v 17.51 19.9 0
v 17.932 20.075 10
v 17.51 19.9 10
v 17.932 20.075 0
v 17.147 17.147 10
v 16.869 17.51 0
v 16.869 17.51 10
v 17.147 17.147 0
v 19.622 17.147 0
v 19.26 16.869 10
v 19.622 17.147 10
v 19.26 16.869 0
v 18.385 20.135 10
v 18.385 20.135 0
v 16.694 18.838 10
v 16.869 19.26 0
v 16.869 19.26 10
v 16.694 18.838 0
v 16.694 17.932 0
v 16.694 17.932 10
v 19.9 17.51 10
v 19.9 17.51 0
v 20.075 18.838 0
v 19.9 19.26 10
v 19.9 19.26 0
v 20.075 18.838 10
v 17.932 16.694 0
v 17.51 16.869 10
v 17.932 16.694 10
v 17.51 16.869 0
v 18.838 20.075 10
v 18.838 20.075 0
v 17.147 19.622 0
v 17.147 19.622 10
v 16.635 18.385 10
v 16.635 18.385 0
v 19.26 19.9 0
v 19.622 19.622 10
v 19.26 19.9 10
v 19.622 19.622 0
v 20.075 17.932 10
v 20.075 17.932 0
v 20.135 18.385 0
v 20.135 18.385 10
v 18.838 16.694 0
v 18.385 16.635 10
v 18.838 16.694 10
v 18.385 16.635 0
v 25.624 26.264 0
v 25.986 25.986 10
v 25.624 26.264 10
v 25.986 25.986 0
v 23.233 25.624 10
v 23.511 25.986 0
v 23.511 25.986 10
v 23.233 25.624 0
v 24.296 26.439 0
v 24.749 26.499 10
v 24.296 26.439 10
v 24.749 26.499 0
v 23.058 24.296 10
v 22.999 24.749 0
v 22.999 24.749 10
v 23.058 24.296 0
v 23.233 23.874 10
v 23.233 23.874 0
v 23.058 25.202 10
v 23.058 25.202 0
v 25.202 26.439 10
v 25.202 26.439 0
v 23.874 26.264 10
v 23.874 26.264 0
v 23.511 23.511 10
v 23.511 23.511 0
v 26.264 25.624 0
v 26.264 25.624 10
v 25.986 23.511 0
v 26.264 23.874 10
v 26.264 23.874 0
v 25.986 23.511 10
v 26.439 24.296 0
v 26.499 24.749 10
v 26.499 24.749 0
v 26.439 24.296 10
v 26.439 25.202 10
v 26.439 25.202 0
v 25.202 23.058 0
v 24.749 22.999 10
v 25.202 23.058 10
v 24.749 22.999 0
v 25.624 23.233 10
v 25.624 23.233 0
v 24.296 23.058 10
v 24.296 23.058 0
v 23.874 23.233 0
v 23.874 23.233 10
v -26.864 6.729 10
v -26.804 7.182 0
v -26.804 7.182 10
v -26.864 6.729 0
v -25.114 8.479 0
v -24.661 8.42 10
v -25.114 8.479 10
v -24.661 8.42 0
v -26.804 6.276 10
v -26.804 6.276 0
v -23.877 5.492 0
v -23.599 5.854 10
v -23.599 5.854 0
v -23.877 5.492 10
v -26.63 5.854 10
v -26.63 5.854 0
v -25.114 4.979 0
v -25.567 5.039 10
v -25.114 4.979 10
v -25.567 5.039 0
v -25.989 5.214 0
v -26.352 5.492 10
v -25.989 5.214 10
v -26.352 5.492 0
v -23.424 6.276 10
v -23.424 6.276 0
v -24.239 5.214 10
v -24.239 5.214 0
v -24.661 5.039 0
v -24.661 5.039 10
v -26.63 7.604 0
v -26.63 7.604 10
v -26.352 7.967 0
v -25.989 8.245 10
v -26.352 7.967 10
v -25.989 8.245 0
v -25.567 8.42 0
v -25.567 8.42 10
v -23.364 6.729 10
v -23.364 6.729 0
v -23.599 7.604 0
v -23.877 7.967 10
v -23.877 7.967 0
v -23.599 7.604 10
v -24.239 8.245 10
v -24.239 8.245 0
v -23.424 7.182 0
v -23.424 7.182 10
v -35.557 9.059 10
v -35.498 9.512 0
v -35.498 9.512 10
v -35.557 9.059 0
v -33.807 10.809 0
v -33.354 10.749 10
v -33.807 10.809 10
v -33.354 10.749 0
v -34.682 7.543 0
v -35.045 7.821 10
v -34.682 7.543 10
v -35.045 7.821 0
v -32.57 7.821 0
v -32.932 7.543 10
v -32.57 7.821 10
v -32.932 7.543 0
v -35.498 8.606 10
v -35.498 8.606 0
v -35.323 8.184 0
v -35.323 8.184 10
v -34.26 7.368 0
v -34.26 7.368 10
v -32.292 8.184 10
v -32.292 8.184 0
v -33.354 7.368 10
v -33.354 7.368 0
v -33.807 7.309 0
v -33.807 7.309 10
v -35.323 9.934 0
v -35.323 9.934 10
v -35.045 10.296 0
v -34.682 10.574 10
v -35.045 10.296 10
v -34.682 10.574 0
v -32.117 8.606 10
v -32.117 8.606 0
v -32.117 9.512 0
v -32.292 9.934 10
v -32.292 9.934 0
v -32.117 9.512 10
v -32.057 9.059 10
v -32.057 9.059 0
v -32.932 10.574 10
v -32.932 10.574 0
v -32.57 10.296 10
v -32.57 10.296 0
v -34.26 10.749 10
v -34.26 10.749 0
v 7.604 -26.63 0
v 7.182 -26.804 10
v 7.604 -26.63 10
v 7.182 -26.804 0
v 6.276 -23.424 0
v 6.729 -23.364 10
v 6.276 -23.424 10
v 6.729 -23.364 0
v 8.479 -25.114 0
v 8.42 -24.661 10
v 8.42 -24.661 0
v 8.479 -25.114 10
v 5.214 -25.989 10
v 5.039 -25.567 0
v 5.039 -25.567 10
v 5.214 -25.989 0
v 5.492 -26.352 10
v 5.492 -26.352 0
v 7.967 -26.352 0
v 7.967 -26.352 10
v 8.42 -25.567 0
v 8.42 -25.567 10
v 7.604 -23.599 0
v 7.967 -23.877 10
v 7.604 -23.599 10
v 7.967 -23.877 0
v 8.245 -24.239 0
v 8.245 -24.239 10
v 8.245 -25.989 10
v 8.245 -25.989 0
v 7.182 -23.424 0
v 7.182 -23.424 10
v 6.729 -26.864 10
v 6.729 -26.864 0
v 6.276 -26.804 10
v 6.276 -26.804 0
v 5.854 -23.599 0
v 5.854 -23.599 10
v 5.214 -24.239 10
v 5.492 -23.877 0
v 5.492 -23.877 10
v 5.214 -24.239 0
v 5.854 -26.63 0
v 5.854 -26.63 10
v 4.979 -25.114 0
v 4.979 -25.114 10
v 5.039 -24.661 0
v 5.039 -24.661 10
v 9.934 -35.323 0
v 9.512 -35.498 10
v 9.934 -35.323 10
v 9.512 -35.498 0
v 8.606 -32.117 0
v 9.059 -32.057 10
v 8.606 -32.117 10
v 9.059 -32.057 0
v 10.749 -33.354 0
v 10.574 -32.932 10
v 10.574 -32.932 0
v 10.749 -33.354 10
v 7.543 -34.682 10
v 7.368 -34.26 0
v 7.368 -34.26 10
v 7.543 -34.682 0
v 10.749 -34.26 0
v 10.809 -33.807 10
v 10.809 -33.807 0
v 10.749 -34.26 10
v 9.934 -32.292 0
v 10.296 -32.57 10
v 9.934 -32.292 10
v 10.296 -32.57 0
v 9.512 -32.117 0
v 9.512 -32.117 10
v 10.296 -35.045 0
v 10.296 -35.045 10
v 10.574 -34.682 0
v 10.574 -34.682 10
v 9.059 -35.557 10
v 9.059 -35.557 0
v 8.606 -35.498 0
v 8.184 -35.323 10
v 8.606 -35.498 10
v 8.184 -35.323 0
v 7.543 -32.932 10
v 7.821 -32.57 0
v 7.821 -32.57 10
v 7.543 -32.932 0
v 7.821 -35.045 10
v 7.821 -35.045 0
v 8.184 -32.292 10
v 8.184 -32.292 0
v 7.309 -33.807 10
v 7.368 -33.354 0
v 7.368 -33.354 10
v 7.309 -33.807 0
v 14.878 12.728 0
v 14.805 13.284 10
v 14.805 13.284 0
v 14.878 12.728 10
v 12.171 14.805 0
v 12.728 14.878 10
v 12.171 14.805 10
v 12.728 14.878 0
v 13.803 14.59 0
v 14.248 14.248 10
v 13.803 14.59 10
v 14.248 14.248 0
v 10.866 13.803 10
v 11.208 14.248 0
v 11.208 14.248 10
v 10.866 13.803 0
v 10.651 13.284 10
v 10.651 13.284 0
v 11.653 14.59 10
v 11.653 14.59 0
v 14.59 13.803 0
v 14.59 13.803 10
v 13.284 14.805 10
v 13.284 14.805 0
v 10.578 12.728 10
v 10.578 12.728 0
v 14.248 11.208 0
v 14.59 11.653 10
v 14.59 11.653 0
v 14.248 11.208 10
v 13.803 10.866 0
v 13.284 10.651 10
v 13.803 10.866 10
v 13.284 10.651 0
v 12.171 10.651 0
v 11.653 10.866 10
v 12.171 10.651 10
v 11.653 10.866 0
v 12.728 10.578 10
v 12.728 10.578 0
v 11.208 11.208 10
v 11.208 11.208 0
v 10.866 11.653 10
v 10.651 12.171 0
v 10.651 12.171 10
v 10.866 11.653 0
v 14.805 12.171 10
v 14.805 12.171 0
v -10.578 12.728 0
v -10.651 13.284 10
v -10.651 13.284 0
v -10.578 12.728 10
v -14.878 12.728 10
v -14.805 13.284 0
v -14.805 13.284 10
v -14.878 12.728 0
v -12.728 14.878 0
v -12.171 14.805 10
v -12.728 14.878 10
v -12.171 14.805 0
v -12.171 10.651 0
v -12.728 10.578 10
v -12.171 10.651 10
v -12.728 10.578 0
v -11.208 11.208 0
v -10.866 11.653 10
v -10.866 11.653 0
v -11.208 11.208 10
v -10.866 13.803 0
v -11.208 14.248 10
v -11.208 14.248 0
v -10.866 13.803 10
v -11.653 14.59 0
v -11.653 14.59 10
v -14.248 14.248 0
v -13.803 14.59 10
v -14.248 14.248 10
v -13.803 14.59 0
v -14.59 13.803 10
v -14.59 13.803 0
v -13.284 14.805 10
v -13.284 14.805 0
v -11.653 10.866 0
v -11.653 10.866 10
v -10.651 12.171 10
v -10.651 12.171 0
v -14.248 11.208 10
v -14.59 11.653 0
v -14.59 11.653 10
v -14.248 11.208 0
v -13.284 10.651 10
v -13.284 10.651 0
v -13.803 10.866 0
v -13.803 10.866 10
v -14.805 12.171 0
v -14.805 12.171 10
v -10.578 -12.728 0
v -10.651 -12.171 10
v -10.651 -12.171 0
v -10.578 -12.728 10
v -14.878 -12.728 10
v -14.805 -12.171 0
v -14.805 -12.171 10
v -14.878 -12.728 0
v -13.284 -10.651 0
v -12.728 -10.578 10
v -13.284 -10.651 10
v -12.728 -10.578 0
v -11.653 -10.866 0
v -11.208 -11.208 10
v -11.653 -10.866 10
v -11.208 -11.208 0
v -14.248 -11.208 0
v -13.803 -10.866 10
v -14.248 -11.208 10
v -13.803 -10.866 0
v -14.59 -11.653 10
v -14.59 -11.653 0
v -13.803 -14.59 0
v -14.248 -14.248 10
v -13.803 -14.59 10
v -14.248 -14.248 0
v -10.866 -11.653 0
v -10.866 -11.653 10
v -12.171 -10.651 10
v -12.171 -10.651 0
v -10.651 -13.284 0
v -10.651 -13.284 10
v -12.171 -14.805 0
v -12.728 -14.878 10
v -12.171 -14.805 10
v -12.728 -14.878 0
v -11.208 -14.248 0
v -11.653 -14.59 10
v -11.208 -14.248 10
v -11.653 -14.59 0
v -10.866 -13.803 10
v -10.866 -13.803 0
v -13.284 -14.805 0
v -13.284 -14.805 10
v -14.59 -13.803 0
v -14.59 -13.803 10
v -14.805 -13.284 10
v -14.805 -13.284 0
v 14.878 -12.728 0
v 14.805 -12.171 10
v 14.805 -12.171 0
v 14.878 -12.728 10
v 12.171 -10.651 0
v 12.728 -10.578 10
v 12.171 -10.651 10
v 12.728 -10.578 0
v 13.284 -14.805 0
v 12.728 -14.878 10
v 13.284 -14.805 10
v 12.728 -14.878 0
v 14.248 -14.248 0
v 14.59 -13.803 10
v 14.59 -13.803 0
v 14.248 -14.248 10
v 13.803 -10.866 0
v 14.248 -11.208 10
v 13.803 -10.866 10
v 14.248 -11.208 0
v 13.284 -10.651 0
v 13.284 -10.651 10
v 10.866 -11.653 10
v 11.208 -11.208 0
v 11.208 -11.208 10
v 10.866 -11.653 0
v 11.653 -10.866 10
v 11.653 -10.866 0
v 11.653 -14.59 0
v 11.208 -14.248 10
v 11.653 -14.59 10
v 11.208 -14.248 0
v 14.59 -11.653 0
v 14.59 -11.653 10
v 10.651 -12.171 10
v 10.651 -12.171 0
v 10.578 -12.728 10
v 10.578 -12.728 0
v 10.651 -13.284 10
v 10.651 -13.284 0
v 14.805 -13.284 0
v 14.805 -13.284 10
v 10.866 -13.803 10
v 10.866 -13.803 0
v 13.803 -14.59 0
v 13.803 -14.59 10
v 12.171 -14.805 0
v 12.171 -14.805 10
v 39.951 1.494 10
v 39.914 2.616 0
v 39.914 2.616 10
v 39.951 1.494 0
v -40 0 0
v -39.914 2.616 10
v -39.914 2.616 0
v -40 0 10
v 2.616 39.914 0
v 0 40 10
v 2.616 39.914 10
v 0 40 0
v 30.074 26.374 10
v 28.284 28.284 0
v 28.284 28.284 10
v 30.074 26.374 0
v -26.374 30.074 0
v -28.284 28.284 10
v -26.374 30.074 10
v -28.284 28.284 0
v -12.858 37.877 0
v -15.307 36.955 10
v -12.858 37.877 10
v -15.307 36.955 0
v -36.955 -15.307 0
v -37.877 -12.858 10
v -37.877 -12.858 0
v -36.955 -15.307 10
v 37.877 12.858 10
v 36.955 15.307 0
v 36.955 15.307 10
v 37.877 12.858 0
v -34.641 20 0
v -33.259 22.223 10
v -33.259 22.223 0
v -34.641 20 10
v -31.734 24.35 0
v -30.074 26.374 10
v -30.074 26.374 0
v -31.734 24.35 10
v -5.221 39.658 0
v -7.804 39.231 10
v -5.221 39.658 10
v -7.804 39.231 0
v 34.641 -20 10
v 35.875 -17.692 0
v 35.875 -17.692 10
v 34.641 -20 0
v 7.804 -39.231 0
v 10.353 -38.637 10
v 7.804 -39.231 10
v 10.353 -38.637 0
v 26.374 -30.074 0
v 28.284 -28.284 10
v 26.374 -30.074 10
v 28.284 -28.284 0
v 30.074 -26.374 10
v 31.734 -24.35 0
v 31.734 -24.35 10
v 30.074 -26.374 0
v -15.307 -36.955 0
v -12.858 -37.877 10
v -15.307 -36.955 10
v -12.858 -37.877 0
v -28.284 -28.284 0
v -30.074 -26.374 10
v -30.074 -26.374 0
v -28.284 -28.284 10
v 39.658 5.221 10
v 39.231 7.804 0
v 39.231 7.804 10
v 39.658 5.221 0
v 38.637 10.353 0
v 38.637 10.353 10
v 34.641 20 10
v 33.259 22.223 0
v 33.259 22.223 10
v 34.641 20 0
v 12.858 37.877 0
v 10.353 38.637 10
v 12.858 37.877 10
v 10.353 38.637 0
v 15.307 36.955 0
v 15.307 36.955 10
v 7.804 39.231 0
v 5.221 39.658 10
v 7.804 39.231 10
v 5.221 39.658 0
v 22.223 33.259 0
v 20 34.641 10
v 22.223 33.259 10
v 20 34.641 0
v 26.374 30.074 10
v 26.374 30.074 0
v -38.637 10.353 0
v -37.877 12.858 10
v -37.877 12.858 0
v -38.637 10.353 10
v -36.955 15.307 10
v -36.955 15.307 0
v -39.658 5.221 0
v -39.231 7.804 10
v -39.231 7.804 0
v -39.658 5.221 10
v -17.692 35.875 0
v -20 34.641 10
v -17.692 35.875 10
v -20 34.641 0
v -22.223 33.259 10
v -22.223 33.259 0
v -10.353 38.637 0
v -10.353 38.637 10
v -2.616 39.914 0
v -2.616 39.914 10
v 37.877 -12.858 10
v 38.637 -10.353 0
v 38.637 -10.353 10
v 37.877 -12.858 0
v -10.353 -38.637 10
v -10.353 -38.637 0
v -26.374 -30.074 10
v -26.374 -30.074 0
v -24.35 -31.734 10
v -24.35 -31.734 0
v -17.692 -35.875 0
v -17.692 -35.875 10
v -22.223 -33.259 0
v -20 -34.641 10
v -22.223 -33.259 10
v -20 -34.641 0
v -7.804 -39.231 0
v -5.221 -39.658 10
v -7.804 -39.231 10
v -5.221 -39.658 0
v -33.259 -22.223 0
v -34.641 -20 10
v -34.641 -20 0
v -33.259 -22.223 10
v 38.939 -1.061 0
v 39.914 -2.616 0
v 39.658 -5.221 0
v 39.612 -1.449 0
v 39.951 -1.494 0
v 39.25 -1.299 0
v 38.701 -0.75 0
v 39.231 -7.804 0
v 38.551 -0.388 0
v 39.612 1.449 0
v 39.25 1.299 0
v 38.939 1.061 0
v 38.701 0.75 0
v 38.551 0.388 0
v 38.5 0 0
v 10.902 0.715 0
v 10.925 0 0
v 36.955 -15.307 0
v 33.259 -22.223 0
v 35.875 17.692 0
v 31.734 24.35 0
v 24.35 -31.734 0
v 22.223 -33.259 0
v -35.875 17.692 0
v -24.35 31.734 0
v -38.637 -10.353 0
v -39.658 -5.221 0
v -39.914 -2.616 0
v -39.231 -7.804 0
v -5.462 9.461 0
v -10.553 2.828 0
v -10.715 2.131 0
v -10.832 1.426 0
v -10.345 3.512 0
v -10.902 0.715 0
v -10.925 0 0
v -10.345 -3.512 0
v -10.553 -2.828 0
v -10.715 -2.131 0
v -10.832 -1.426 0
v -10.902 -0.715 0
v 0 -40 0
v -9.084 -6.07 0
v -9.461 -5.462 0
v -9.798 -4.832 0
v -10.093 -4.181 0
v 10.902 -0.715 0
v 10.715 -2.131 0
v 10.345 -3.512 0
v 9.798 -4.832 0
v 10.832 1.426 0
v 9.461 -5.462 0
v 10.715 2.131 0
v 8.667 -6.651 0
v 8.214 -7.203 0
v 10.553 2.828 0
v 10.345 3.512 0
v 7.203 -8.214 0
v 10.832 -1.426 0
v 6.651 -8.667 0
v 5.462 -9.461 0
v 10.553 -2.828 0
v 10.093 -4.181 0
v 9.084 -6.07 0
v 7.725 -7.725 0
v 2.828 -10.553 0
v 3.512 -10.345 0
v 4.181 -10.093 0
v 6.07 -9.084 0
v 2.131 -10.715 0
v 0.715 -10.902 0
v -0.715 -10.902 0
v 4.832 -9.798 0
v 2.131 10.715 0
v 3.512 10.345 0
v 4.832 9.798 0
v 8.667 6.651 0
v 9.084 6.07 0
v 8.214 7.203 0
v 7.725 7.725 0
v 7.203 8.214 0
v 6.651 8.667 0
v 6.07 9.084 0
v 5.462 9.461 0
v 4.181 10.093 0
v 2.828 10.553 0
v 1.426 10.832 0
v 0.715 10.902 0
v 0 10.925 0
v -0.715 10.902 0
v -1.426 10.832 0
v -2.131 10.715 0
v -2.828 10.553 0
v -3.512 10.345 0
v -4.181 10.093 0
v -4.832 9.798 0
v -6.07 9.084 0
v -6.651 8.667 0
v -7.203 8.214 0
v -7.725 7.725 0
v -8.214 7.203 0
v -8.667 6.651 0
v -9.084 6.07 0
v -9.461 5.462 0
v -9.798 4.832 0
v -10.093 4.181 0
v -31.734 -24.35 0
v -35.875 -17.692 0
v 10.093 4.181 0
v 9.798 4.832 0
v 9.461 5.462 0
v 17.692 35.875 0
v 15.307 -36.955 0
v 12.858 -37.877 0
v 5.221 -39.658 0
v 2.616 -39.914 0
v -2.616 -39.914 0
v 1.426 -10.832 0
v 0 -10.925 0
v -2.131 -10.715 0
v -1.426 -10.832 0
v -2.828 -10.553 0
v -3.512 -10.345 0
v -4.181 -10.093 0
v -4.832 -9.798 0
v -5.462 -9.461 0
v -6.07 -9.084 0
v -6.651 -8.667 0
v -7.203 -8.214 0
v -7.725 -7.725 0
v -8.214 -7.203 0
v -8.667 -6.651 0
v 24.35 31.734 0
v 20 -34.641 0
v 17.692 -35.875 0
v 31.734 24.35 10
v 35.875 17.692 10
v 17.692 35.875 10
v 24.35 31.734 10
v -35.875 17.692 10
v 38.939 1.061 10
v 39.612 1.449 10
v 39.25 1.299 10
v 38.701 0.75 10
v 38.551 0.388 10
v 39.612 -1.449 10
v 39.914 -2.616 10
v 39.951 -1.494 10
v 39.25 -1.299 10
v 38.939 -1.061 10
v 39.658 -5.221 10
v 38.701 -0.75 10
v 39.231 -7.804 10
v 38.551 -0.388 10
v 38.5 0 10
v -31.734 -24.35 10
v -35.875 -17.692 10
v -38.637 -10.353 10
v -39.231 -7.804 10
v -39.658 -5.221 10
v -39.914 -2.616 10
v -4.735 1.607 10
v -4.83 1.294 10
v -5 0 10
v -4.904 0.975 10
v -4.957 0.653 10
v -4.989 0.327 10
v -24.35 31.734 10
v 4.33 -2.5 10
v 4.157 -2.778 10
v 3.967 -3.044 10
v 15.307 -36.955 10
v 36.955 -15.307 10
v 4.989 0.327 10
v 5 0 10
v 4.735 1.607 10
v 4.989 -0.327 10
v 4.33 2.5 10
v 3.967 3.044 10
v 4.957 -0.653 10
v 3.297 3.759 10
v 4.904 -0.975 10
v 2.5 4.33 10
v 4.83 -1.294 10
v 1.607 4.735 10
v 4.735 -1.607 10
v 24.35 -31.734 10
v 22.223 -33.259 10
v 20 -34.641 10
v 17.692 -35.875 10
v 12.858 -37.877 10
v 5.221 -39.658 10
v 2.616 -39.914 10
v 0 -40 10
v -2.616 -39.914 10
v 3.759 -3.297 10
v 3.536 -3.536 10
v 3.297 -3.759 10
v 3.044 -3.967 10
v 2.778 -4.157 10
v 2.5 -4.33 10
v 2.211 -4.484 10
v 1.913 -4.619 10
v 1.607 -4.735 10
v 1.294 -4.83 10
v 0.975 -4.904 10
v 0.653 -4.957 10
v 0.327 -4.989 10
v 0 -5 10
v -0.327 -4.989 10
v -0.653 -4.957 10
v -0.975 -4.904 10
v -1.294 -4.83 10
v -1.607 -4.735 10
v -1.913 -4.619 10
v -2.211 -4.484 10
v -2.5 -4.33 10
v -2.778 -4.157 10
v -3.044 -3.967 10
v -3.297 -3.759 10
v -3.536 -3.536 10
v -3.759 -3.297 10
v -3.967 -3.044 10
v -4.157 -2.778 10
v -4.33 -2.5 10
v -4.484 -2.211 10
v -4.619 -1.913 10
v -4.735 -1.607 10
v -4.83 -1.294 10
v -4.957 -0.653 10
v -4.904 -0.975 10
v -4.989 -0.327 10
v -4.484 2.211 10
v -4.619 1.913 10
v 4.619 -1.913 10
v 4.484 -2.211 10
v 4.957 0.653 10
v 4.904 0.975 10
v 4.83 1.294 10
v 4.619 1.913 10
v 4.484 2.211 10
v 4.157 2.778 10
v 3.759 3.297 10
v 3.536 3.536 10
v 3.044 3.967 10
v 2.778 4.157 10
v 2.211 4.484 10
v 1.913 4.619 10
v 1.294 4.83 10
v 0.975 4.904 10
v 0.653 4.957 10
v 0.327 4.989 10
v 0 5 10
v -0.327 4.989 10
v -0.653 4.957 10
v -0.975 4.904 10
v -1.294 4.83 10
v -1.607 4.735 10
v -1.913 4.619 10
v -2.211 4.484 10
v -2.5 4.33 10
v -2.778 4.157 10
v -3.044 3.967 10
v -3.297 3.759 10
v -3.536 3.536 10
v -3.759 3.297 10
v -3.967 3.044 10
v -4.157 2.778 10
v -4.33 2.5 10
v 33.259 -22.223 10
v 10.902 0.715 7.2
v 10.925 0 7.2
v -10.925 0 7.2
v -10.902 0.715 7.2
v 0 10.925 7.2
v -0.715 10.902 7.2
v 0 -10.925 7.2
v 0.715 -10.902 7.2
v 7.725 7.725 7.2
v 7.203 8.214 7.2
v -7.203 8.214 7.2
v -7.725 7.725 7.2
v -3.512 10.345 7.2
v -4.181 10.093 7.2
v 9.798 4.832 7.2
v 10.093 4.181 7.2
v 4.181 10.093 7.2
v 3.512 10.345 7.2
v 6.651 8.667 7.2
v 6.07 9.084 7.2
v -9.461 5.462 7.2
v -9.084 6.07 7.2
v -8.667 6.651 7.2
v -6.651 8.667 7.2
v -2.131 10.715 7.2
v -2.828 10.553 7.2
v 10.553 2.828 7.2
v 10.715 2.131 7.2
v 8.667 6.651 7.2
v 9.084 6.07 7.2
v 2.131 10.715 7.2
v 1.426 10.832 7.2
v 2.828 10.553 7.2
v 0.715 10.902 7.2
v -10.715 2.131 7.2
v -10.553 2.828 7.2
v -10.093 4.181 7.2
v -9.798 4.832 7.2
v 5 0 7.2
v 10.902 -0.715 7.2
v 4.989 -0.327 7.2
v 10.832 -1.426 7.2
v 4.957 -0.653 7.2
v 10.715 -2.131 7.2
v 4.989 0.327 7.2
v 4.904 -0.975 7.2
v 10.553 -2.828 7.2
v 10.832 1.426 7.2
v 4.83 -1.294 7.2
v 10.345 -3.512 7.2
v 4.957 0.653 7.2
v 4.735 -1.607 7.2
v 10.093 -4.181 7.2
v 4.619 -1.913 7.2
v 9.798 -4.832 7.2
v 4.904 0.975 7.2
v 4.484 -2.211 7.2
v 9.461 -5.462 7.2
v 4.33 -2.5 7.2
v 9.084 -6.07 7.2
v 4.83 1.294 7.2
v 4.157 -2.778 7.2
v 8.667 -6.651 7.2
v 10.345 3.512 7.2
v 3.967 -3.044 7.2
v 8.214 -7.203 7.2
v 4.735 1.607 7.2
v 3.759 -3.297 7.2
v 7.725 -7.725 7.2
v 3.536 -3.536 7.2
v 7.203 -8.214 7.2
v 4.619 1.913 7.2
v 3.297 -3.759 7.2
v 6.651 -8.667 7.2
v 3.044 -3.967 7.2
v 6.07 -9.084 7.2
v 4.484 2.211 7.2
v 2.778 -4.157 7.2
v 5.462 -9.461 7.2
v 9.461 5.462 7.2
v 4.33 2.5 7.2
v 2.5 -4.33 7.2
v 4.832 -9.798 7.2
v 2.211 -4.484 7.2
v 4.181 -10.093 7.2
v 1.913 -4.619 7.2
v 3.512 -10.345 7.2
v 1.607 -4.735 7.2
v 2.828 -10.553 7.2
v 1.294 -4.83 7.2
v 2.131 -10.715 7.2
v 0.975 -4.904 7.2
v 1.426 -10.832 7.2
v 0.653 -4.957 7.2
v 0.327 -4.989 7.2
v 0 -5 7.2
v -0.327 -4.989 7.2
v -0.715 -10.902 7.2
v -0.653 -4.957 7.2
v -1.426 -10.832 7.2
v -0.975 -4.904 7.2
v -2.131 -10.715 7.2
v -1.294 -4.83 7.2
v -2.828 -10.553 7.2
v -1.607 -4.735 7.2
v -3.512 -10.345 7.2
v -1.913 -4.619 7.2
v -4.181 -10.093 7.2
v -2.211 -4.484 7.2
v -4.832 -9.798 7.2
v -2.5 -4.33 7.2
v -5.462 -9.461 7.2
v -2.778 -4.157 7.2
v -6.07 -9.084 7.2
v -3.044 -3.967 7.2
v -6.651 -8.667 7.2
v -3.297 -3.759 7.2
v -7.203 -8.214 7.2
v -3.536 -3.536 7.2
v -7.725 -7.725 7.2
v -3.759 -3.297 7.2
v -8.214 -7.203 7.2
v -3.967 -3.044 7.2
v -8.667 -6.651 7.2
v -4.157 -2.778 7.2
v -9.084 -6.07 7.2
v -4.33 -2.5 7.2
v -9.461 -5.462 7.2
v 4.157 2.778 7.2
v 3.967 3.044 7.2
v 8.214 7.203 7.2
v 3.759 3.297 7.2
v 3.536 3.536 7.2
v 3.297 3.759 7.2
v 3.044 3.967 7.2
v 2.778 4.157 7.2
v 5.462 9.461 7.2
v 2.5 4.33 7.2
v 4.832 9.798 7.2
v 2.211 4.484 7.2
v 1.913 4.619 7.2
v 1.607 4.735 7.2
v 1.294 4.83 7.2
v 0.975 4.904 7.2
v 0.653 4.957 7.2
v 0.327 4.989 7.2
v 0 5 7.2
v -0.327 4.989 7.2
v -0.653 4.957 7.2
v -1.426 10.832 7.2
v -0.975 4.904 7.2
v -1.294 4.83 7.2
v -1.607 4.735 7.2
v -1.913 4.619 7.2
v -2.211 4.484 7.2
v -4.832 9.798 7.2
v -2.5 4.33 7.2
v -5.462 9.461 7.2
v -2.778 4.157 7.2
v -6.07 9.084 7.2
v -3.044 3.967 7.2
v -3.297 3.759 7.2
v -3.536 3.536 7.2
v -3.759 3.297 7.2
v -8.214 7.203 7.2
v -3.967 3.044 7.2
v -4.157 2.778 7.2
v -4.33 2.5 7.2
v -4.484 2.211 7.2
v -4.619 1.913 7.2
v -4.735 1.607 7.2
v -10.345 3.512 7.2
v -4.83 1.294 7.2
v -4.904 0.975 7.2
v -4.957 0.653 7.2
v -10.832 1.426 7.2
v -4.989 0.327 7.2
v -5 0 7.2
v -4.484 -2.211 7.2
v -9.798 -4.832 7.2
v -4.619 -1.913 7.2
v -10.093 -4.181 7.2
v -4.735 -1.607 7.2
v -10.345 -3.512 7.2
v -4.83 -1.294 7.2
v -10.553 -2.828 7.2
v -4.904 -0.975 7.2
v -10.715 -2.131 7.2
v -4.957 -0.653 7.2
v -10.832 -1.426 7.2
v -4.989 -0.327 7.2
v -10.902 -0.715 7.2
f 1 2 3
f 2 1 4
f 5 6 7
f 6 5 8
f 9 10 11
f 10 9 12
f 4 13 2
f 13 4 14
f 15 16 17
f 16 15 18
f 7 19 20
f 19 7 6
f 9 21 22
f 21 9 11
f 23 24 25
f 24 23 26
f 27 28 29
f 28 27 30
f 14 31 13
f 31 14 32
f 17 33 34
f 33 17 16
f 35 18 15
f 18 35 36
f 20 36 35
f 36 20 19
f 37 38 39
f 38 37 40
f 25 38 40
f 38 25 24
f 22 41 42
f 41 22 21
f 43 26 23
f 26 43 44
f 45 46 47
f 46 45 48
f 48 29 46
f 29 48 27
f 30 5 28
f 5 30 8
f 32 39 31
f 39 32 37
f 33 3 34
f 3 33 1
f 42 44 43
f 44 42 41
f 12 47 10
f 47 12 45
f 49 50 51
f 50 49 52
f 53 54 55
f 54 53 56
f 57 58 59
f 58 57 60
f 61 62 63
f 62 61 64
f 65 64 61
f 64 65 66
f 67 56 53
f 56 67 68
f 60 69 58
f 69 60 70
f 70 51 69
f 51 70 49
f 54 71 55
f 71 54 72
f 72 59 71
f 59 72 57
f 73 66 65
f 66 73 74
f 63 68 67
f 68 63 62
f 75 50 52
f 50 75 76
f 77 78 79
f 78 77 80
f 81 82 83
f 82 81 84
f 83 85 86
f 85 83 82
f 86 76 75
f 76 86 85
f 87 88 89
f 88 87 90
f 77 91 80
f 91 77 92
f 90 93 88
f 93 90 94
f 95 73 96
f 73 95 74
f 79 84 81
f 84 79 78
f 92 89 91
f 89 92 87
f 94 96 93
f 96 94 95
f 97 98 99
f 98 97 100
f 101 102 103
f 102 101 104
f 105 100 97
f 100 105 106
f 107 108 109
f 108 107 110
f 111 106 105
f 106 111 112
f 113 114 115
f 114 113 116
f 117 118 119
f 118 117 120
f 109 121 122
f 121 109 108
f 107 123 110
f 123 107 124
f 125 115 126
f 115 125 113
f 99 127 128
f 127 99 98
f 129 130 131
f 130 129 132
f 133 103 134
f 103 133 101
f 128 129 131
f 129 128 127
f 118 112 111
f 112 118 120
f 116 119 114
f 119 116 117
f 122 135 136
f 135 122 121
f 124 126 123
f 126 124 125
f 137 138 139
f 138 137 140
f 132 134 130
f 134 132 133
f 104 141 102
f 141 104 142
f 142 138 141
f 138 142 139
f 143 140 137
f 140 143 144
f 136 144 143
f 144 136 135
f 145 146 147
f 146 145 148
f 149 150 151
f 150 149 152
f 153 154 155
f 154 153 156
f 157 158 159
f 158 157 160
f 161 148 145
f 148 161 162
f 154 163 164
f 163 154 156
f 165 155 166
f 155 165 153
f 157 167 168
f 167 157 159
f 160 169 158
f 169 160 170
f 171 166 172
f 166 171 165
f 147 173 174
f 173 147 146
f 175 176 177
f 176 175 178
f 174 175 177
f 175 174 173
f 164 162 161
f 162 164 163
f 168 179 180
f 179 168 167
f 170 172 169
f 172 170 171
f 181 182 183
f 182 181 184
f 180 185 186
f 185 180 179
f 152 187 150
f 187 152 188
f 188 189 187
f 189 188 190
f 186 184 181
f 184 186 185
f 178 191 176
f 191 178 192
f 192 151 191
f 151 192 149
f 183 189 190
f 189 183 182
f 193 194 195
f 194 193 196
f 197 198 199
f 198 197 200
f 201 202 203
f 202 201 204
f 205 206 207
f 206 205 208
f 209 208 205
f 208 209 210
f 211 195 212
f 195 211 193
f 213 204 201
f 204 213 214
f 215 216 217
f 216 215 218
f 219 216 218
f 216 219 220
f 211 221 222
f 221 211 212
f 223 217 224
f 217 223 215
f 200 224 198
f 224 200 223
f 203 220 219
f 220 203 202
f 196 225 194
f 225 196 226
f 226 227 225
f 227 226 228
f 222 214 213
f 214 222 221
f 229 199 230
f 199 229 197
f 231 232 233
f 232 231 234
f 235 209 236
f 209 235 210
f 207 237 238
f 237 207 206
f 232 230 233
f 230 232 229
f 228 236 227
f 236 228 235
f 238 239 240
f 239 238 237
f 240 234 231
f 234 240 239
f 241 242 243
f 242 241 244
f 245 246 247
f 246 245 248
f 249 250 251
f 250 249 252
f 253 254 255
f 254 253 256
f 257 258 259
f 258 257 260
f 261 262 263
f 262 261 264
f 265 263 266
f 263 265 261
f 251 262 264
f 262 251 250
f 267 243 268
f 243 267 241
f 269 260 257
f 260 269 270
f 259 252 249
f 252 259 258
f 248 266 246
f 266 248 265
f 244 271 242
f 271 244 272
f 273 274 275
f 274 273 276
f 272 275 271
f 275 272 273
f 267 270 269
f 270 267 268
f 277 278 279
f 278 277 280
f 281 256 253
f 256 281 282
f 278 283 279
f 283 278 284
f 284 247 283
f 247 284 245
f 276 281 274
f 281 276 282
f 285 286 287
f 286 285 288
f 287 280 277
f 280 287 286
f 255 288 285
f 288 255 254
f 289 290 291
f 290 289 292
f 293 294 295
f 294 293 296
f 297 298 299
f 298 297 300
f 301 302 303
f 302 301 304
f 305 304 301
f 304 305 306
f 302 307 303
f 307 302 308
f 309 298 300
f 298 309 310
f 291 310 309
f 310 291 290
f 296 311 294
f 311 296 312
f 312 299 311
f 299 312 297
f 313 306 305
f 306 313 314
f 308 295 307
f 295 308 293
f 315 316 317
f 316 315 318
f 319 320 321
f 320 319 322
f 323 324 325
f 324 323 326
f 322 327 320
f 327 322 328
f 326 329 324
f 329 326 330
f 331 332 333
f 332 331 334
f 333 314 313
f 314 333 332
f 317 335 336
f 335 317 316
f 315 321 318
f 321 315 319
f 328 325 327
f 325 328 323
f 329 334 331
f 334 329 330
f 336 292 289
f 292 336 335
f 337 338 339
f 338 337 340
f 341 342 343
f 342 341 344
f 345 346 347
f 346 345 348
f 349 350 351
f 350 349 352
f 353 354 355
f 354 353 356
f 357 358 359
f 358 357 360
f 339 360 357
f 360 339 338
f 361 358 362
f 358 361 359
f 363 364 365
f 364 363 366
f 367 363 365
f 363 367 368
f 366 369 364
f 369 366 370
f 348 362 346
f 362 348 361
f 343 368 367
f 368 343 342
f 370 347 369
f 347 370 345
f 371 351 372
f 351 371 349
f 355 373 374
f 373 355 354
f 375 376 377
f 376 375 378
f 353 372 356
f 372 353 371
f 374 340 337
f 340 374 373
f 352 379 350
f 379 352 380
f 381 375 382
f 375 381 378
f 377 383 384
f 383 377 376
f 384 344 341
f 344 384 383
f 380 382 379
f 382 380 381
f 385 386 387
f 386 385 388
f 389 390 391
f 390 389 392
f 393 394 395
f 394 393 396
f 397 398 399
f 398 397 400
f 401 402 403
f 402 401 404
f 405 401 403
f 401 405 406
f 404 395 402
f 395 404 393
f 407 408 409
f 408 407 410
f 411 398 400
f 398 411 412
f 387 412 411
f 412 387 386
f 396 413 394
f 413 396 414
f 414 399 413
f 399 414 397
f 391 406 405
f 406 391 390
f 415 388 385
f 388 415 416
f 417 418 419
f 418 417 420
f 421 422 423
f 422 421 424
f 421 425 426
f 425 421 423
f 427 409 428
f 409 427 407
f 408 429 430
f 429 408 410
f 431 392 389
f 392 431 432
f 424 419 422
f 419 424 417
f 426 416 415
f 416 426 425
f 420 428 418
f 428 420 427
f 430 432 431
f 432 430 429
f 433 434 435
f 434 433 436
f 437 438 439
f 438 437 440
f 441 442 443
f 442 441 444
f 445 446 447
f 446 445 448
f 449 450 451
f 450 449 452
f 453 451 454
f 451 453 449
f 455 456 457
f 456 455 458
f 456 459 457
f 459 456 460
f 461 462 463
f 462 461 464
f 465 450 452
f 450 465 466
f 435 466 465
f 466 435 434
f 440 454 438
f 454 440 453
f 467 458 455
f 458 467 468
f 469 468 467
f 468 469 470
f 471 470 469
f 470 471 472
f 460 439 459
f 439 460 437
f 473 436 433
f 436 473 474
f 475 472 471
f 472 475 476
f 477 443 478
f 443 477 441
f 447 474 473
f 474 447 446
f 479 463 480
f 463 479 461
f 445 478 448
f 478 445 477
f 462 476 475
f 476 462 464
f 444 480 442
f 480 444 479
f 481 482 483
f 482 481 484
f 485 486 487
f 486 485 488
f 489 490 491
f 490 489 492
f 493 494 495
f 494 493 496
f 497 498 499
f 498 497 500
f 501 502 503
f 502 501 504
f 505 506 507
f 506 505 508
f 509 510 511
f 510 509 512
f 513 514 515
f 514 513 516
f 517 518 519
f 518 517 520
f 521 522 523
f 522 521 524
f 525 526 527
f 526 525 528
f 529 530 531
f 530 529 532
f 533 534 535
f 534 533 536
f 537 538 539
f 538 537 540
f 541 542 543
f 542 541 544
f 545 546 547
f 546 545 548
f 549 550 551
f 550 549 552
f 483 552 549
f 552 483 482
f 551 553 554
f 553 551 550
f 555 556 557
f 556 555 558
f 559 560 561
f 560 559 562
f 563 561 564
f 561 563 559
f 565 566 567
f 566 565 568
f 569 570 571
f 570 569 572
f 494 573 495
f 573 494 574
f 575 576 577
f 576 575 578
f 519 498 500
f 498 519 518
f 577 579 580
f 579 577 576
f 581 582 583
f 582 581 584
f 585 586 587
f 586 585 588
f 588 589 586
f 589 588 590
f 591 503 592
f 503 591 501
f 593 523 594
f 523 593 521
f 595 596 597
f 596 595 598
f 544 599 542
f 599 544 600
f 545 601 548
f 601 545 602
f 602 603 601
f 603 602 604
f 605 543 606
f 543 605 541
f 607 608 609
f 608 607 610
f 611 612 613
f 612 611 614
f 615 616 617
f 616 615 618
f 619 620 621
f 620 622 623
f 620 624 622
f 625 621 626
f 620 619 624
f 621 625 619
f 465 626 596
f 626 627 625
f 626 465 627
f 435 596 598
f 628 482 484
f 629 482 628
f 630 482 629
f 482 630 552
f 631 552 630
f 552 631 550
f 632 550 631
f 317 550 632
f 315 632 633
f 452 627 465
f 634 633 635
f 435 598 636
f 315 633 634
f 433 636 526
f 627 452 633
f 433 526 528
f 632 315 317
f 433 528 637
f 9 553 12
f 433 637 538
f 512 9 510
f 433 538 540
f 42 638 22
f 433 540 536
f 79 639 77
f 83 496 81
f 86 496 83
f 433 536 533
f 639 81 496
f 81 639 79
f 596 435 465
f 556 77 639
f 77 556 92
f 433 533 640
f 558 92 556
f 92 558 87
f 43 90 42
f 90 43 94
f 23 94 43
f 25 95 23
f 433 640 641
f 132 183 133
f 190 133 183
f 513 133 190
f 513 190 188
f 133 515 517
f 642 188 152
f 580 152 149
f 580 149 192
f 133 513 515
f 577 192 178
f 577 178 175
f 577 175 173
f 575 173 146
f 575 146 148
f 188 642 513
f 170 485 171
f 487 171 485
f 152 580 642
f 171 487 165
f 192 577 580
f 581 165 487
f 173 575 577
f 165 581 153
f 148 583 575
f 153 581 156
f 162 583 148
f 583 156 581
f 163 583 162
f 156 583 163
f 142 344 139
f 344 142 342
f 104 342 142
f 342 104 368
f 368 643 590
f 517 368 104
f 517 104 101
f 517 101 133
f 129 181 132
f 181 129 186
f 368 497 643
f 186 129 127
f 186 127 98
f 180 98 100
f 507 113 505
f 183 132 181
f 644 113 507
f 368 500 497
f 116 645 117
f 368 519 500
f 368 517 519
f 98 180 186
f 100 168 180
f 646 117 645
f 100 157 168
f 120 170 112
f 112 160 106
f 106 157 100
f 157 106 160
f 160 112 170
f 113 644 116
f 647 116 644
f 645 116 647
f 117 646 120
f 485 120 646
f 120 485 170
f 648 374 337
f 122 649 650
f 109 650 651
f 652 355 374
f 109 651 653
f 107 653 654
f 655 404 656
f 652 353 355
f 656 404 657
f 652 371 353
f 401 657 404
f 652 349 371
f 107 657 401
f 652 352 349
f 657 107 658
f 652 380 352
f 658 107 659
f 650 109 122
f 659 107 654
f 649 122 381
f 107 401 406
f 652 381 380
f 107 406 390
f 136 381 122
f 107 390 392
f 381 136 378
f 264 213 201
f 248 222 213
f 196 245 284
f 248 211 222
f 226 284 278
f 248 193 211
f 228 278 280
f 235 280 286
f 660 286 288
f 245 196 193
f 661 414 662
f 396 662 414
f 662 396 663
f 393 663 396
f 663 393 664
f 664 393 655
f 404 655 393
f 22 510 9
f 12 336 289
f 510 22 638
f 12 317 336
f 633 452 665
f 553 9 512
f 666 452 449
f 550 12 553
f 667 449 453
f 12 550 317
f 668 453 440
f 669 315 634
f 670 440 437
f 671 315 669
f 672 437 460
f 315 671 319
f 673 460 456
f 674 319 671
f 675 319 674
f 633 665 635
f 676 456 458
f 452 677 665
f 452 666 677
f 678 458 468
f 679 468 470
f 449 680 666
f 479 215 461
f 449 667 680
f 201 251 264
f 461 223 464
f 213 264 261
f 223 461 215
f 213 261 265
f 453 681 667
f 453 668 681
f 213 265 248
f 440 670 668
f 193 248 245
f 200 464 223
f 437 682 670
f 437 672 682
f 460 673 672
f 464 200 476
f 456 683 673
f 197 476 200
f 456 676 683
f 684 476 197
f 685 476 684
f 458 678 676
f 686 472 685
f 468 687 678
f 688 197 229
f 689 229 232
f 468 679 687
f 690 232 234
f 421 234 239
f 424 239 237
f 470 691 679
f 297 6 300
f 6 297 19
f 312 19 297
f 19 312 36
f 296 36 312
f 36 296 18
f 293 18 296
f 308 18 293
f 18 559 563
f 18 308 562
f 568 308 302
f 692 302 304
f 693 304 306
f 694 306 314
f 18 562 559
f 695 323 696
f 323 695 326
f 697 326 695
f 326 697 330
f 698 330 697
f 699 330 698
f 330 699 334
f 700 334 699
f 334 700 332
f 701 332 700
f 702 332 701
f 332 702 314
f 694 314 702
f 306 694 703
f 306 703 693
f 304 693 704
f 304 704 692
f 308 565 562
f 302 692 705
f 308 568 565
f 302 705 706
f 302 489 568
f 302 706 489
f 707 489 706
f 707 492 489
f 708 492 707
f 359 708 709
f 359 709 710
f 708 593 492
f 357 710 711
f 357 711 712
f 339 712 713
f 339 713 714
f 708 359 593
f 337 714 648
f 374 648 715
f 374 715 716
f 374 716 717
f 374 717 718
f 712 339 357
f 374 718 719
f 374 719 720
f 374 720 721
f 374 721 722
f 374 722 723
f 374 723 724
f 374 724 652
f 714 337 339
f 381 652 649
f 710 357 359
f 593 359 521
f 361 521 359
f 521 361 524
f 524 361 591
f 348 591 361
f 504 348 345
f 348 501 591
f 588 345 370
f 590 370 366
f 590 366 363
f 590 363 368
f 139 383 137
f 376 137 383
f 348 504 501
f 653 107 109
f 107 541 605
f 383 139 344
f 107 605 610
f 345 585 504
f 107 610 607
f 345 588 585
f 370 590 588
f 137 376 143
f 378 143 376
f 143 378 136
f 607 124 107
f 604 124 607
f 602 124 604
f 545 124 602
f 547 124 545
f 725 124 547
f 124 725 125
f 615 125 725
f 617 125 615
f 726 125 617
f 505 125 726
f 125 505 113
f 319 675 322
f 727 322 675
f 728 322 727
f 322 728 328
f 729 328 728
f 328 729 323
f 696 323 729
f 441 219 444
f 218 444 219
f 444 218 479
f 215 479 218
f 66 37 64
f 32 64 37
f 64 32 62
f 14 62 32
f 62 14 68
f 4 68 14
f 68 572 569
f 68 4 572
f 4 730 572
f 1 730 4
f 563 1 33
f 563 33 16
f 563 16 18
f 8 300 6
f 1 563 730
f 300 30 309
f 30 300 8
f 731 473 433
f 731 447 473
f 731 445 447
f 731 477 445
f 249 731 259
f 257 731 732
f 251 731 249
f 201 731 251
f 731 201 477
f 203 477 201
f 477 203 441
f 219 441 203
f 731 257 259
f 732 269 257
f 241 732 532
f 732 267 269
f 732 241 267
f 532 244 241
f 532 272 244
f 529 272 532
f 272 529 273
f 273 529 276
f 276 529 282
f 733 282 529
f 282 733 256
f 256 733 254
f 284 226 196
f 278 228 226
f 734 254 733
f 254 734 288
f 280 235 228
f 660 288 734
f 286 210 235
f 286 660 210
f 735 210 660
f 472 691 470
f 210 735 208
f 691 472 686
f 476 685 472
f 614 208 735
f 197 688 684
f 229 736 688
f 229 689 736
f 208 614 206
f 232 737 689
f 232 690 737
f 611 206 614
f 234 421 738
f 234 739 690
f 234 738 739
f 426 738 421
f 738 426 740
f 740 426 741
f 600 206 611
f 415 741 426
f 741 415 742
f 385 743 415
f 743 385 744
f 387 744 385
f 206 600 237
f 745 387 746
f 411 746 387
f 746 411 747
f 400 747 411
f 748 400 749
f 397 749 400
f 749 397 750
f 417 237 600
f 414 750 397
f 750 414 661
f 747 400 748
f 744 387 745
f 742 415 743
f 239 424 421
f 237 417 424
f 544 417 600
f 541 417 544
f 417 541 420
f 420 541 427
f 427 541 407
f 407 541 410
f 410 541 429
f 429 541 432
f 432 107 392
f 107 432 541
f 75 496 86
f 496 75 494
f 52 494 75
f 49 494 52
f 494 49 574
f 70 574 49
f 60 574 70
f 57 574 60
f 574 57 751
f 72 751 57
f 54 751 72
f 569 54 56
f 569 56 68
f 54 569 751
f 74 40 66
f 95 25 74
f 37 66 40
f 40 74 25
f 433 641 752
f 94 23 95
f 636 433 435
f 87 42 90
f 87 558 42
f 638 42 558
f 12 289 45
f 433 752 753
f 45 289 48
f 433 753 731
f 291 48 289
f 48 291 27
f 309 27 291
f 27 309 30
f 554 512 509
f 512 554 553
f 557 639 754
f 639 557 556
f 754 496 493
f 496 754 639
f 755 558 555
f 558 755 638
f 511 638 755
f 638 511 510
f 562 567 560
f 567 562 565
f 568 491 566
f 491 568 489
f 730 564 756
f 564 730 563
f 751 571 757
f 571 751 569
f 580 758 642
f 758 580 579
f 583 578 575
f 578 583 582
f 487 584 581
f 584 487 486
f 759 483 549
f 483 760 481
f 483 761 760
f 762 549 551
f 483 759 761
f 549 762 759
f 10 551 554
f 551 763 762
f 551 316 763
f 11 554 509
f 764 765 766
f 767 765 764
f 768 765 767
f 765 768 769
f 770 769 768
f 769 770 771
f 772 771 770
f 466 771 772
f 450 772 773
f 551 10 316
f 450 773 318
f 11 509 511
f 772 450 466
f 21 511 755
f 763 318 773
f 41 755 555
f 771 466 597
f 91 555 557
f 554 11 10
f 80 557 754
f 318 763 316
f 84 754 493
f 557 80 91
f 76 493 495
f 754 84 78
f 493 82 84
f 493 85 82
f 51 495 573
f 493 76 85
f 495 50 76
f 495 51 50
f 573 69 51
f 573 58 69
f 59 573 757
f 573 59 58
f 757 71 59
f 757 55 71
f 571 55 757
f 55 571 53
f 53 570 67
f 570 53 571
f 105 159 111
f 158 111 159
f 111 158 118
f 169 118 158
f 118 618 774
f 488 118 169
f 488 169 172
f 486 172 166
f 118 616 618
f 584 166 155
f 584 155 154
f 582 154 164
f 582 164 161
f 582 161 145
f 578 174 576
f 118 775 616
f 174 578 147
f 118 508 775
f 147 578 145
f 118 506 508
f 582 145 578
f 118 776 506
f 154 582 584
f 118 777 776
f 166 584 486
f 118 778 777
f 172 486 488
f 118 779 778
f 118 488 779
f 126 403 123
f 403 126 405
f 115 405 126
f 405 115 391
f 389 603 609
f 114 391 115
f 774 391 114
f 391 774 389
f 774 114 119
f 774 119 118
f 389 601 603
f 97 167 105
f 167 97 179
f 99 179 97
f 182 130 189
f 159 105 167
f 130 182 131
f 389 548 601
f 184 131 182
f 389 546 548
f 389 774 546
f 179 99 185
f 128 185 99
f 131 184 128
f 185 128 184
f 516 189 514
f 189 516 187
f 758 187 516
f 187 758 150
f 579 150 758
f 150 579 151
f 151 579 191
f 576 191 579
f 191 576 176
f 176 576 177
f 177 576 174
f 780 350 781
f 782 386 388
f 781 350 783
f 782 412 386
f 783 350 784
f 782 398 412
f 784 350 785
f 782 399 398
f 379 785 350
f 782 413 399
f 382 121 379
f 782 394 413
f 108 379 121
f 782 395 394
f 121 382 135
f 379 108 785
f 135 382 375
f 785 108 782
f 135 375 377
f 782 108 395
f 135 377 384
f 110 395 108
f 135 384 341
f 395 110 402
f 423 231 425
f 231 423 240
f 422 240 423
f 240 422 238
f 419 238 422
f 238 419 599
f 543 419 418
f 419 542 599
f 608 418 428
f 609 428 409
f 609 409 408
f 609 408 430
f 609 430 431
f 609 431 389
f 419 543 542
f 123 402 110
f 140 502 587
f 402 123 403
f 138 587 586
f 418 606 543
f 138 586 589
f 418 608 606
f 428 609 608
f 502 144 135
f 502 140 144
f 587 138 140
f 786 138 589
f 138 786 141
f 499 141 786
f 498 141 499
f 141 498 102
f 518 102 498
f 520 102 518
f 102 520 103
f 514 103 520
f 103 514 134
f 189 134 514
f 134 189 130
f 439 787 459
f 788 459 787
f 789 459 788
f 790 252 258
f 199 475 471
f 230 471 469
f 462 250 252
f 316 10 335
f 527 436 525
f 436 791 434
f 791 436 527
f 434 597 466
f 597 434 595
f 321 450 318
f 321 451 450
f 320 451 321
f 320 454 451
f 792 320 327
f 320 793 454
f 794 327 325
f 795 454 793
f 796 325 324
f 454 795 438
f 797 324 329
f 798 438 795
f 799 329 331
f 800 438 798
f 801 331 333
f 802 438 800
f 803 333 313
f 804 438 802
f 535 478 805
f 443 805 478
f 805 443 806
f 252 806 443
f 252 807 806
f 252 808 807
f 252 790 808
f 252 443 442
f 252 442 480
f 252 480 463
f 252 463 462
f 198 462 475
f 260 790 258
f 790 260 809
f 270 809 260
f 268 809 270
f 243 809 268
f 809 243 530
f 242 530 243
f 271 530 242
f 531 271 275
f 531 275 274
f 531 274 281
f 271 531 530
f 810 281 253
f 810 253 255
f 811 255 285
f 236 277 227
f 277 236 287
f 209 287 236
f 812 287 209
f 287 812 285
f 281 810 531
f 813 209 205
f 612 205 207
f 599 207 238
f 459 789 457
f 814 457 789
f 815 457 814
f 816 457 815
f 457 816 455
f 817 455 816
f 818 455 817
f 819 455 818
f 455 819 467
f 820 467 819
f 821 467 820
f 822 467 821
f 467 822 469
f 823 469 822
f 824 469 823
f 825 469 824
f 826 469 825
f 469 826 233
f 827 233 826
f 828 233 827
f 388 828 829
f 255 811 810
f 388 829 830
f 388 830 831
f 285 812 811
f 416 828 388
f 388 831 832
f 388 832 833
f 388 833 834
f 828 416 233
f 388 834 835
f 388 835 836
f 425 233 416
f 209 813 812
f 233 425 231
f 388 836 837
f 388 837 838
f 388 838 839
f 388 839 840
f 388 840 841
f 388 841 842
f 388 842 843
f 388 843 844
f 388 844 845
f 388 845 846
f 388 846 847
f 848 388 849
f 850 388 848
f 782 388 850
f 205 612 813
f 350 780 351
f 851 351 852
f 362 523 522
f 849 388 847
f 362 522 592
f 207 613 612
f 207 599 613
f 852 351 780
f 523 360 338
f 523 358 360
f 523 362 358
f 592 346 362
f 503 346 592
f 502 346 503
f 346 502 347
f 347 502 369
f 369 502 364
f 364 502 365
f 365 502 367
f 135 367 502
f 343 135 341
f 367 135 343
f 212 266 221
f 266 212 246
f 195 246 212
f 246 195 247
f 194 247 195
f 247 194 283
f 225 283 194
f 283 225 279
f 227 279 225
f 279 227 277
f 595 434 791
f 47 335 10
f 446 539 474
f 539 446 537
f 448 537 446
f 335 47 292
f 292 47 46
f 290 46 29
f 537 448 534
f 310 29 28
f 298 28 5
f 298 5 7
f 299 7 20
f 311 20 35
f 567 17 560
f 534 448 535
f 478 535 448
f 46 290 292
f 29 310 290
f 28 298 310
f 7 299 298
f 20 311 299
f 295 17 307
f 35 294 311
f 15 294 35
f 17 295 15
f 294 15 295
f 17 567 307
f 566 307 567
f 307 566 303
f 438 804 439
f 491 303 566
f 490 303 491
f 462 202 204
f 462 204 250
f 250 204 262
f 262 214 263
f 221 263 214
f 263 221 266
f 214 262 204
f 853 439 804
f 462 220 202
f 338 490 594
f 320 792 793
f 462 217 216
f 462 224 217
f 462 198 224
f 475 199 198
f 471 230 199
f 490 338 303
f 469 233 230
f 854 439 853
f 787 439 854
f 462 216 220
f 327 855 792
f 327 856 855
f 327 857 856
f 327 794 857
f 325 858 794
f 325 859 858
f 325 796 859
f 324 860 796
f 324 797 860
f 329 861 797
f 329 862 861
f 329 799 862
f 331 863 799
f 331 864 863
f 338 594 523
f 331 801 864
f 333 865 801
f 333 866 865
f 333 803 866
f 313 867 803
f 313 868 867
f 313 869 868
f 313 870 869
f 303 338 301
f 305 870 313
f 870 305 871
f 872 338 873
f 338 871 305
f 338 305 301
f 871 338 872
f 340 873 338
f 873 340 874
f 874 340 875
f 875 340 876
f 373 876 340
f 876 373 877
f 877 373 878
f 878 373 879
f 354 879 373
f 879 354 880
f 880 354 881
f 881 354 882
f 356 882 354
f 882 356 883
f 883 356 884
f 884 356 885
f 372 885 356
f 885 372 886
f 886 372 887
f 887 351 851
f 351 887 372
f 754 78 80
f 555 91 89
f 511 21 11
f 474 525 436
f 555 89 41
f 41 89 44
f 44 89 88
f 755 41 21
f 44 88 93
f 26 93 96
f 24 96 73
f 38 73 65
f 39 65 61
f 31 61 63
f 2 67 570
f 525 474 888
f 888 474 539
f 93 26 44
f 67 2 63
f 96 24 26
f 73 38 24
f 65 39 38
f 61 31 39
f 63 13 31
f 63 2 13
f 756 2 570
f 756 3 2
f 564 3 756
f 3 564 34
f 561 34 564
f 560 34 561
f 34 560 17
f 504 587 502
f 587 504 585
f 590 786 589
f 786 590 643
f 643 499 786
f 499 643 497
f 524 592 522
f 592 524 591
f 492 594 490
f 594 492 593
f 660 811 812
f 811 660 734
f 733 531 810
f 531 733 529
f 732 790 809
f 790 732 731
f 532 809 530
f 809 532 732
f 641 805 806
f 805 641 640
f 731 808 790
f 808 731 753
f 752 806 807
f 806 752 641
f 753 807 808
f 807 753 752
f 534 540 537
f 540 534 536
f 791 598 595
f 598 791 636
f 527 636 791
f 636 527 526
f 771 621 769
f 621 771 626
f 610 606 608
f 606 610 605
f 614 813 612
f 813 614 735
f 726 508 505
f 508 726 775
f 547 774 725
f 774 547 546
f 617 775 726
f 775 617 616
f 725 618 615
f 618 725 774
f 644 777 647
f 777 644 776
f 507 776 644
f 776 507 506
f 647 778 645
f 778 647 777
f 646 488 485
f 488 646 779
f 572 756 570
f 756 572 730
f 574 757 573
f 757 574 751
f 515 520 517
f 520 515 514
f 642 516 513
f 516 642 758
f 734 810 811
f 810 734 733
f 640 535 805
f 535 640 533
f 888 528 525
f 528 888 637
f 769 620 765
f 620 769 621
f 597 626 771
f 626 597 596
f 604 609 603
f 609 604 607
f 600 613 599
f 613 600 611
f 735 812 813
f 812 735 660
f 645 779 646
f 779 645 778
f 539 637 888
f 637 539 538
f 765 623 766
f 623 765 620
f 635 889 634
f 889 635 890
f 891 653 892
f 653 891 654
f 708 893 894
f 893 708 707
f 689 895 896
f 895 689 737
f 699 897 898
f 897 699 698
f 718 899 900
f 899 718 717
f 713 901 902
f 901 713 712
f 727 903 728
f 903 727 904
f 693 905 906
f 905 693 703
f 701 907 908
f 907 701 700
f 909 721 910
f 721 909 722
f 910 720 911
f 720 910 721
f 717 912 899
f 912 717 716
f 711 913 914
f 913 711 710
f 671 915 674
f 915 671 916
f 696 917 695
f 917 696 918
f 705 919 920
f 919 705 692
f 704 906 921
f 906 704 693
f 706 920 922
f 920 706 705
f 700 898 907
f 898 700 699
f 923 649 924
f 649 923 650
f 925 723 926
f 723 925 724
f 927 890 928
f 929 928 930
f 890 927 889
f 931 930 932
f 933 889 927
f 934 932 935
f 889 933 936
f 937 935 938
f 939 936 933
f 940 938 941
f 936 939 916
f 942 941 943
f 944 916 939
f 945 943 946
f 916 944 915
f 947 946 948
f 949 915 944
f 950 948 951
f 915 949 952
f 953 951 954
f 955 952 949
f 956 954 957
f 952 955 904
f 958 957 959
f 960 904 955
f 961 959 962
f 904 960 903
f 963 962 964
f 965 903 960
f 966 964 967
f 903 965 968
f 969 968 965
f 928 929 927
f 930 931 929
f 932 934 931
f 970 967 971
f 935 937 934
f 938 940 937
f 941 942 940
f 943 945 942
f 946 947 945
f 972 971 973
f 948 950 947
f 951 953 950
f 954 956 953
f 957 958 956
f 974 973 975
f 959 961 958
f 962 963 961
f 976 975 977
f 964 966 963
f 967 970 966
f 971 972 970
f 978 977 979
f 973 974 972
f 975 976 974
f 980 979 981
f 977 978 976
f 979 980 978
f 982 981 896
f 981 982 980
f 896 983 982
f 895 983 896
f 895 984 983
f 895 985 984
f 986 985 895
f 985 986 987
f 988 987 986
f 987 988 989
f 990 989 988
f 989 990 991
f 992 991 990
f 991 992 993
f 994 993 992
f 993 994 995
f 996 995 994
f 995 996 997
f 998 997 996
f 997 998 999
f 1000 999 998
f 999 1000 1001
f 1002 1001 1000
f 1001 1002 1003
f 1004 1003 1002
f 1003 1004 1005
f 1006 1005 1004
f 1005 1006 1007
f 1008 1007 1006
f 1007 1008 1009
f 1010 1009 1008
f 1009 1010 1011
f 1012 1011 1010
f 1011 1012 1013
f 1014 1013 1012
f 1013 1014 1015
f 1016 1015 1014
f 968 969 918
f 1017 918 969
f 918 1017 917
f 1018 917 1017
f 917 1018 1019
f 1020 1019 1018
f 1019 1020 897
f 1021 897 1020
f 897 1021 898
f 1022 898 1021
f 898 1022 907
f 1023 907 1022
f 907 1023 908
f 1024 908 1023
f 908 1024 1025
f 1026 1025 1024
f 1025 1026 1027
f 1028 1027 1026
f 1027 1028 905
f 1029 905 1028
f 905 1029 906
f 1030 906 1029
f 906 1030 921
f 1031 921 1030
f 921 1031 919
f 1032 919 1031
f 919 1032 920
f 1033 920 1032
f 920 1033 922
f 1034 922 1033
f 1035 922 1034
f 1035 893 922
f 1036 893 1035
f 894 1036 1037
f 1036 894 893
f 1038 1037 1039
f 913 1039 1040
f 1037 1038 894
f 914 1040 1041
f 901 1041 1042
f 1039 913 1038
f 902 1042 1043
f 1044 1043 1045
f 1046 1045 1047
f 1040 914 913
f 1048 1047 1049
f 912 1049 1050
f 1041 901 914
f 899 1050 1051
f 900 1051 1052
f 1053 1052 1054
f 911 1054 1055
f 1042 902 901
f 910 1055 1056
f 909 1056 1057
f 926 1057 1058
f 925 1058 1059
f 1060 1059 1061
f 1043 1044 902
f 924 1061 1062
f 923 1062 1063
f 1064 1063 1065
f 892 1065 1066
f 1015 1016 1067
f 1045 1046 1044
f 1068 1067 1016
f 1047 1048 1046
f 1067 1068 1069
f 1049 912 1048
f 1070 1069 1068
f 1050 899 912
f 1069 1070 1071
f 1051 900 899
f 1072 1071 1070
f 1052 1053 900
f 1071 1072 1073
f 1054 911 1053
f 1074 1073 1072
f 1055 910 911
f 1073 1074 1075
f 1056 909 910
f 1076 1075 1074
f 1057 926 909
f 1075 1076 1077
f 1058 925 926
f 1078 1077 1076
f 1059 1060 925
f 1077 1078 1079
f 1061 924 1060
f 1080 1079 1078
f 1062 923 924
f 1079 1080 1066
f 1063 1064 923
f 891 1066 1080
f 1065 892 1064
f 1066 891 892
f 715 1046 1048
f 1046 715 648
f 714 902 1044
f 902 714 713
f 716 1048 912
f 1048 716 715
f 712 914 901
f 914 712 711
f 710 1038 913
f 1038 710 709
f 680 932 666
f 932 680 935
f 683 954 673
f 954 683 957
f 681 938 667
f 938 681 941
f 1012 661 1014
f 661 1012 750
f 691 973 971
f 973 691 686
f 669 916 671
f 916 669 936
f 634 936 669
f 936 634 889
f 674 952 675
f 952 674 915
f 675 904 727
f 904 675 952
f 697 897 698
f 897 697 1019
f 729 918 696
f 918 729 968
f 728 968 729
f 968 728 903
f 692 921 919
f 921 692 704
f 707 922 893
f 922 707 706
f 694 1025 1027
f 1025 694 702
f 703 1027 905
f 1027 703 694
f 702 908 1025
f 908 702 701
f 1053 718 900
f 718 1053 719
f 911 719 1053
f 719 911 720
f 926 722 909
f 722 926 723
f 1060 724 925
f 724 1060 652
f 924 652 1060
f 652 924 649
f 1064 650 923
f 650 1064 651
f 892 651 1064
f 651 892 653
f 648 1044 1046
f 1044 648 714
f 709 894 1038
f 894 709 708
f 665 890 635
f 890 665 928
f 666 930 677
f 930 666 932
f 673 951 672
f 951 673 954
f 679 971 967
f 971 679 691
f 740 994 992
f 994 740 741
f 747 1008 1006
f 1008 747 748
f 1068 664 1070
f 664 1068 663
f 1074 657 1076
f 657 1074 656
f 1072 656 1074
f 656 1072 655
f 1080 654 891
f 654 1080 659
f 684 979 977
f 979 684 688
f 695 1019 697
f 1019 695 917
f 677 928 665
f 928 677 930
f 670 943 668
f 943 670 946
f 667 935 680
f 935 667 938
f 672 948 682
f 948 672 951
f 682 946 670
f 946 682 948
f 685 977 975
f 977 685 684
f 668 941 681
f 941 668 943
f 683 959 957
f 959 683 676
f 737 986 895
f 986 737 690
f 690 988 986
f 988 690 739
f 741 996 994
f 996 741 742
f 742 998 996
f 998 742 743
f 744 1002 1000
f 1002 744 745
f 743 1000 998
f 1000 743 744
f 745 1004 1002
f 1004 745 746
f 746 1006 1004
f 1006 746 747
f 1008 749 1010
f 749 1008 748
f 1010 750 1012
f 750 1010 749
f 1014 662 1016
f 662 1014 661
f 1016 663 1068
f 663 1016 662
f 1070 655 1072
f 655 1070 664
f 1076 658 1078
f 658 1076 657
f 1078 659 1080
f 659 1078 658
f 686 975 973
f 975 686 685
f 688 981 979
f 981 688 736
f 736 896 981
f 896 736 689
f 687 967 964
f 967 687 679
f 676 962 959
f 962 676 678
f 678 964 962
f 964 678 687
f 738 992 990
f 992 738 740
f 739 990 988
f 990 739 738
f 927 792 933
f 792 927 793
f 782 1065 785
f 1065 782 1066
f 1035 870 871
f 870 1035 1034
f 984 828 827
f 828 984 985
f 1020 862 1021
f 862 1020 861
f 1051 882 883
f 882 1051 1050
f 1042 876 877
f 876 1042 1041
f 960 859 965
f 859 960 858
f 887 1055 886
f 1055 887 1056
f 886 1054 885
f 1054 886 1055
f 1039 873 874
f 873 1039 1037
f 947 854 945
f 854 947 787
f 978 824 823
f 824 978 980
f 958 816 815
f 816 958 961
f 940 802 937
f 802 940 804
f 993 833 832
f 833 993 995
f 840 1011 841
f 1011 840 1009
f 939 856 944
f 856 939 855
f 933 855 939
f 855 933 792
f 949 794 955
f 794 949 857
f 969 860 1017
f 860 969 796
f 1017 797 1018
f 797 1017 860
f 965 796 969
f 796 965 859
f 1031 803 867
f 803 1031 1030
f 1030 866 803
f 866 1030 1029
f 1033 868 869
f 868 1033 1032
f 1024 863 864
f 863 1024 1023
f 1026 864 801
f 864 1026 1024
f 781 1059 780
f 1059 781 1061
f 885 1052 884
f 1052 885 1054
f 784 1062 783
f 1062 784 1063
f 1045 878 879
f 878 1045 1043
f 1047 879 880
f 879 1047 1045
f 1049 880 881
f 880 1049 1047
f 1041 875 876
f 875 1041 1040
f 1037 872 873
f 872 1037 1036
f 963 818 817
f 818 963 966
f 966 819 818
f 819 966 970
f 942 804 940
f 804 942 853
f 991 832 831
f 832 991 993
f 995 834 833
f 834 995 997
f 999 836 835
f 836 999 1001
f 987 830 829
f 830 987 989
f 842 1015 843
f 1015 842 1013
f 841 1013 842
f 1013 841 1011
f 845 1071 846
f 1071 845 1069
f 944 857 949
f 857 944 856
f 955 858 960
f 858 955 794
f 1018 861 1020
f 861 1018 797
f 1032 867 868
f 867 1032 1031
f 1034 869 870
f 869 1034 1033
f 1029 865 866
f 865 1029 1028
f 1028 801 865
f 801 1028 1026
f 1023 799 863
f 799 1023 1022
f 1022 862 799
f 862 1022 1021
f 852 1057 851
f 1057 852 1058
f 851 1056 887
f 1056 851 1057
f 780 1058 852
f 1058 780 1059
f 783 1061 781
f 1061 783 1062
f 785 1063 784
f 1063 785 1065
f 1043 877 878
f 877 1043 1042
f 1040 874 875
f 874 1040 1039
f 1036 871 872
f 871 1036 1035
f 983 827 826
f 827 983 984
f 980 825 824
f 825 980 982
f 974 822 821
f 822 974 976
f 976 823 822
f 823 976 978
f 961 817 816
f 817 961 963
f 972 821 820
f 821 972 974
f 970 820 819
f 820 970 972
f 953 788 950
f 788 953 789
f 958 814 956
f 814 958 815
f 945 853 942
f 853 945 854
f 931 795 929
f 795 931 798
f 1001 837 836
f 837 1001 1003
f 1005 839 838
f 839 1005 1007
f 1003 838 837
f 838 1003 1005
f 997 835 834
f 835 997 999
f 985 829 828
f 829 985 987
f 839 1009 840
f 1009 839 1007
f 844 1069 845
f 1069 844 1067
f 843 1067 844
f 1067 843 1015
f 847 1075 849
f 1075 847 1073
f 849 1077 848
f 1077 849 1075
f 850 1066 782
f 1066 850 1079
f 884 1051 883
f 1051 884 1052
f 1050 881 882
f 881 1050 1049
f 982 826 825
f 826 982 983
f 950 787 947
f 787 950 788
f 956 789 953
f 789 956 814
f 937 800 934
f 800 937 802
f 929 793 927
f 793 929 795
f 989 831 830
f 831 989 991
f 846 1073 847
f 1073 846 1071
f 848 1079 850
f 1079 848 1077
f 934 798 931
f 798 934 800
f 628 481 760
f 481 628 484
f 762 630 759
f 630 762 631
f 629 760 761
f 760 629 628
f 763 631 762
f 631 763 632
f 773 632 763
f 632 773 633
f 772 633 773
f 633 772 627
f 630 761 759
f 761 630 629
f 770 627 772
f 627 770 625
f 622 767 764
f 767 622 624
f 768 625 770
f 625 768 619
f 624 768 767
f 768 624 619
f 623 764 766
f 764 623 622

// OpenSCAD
// Gen-EE — TOP SPIDER HUB (2026-11-02 pedestal frame). Print x1. As modelled (= assembled) the bearing seat opens DOWNWARD toward
// rotor B; the print packs FLIP it (seat opening UP) so the seat needs no bridge. The upper 608 is pressed in from below,
// against the 2.8 mm floor. 3 spider arms bolt on top (2x M3x16 + nyloc each). Carries only lateral loads (the weight goes into the pedestal).
include <parameters.scad>;
$fn = 96;
difference() {
    cylinder(d=spider_hub_od, h=spider_hub_t);
    translate([0, 0, -0.1]) cylinder(d=bearing_d, h=bearing_h + 0.1);
    translate([0, 0, -0.1]) cylinder(d=endbell_shaft_clear, h=spider_hub_t + 1);
    for (a = arm_angles) for (r = arm_bolt_r) rotate([0, 0, a]) translate([r, 0, -0.1]) cylinder(d=m3_clear, h=spider_hub_t + 1, $fn=24);
    for (a = brace_angles) translate([brace_r * cos(a), brace_r * sin(a), -0.1]) cylinder(d=brace_d, h=spider_hub_t + 1, $fn=24);
    translate([spider_hub_od / 2, 0, -0.1]) cylinder(d=index_notch_d, h=spider_hub_t + 1, $fn=24);
}
